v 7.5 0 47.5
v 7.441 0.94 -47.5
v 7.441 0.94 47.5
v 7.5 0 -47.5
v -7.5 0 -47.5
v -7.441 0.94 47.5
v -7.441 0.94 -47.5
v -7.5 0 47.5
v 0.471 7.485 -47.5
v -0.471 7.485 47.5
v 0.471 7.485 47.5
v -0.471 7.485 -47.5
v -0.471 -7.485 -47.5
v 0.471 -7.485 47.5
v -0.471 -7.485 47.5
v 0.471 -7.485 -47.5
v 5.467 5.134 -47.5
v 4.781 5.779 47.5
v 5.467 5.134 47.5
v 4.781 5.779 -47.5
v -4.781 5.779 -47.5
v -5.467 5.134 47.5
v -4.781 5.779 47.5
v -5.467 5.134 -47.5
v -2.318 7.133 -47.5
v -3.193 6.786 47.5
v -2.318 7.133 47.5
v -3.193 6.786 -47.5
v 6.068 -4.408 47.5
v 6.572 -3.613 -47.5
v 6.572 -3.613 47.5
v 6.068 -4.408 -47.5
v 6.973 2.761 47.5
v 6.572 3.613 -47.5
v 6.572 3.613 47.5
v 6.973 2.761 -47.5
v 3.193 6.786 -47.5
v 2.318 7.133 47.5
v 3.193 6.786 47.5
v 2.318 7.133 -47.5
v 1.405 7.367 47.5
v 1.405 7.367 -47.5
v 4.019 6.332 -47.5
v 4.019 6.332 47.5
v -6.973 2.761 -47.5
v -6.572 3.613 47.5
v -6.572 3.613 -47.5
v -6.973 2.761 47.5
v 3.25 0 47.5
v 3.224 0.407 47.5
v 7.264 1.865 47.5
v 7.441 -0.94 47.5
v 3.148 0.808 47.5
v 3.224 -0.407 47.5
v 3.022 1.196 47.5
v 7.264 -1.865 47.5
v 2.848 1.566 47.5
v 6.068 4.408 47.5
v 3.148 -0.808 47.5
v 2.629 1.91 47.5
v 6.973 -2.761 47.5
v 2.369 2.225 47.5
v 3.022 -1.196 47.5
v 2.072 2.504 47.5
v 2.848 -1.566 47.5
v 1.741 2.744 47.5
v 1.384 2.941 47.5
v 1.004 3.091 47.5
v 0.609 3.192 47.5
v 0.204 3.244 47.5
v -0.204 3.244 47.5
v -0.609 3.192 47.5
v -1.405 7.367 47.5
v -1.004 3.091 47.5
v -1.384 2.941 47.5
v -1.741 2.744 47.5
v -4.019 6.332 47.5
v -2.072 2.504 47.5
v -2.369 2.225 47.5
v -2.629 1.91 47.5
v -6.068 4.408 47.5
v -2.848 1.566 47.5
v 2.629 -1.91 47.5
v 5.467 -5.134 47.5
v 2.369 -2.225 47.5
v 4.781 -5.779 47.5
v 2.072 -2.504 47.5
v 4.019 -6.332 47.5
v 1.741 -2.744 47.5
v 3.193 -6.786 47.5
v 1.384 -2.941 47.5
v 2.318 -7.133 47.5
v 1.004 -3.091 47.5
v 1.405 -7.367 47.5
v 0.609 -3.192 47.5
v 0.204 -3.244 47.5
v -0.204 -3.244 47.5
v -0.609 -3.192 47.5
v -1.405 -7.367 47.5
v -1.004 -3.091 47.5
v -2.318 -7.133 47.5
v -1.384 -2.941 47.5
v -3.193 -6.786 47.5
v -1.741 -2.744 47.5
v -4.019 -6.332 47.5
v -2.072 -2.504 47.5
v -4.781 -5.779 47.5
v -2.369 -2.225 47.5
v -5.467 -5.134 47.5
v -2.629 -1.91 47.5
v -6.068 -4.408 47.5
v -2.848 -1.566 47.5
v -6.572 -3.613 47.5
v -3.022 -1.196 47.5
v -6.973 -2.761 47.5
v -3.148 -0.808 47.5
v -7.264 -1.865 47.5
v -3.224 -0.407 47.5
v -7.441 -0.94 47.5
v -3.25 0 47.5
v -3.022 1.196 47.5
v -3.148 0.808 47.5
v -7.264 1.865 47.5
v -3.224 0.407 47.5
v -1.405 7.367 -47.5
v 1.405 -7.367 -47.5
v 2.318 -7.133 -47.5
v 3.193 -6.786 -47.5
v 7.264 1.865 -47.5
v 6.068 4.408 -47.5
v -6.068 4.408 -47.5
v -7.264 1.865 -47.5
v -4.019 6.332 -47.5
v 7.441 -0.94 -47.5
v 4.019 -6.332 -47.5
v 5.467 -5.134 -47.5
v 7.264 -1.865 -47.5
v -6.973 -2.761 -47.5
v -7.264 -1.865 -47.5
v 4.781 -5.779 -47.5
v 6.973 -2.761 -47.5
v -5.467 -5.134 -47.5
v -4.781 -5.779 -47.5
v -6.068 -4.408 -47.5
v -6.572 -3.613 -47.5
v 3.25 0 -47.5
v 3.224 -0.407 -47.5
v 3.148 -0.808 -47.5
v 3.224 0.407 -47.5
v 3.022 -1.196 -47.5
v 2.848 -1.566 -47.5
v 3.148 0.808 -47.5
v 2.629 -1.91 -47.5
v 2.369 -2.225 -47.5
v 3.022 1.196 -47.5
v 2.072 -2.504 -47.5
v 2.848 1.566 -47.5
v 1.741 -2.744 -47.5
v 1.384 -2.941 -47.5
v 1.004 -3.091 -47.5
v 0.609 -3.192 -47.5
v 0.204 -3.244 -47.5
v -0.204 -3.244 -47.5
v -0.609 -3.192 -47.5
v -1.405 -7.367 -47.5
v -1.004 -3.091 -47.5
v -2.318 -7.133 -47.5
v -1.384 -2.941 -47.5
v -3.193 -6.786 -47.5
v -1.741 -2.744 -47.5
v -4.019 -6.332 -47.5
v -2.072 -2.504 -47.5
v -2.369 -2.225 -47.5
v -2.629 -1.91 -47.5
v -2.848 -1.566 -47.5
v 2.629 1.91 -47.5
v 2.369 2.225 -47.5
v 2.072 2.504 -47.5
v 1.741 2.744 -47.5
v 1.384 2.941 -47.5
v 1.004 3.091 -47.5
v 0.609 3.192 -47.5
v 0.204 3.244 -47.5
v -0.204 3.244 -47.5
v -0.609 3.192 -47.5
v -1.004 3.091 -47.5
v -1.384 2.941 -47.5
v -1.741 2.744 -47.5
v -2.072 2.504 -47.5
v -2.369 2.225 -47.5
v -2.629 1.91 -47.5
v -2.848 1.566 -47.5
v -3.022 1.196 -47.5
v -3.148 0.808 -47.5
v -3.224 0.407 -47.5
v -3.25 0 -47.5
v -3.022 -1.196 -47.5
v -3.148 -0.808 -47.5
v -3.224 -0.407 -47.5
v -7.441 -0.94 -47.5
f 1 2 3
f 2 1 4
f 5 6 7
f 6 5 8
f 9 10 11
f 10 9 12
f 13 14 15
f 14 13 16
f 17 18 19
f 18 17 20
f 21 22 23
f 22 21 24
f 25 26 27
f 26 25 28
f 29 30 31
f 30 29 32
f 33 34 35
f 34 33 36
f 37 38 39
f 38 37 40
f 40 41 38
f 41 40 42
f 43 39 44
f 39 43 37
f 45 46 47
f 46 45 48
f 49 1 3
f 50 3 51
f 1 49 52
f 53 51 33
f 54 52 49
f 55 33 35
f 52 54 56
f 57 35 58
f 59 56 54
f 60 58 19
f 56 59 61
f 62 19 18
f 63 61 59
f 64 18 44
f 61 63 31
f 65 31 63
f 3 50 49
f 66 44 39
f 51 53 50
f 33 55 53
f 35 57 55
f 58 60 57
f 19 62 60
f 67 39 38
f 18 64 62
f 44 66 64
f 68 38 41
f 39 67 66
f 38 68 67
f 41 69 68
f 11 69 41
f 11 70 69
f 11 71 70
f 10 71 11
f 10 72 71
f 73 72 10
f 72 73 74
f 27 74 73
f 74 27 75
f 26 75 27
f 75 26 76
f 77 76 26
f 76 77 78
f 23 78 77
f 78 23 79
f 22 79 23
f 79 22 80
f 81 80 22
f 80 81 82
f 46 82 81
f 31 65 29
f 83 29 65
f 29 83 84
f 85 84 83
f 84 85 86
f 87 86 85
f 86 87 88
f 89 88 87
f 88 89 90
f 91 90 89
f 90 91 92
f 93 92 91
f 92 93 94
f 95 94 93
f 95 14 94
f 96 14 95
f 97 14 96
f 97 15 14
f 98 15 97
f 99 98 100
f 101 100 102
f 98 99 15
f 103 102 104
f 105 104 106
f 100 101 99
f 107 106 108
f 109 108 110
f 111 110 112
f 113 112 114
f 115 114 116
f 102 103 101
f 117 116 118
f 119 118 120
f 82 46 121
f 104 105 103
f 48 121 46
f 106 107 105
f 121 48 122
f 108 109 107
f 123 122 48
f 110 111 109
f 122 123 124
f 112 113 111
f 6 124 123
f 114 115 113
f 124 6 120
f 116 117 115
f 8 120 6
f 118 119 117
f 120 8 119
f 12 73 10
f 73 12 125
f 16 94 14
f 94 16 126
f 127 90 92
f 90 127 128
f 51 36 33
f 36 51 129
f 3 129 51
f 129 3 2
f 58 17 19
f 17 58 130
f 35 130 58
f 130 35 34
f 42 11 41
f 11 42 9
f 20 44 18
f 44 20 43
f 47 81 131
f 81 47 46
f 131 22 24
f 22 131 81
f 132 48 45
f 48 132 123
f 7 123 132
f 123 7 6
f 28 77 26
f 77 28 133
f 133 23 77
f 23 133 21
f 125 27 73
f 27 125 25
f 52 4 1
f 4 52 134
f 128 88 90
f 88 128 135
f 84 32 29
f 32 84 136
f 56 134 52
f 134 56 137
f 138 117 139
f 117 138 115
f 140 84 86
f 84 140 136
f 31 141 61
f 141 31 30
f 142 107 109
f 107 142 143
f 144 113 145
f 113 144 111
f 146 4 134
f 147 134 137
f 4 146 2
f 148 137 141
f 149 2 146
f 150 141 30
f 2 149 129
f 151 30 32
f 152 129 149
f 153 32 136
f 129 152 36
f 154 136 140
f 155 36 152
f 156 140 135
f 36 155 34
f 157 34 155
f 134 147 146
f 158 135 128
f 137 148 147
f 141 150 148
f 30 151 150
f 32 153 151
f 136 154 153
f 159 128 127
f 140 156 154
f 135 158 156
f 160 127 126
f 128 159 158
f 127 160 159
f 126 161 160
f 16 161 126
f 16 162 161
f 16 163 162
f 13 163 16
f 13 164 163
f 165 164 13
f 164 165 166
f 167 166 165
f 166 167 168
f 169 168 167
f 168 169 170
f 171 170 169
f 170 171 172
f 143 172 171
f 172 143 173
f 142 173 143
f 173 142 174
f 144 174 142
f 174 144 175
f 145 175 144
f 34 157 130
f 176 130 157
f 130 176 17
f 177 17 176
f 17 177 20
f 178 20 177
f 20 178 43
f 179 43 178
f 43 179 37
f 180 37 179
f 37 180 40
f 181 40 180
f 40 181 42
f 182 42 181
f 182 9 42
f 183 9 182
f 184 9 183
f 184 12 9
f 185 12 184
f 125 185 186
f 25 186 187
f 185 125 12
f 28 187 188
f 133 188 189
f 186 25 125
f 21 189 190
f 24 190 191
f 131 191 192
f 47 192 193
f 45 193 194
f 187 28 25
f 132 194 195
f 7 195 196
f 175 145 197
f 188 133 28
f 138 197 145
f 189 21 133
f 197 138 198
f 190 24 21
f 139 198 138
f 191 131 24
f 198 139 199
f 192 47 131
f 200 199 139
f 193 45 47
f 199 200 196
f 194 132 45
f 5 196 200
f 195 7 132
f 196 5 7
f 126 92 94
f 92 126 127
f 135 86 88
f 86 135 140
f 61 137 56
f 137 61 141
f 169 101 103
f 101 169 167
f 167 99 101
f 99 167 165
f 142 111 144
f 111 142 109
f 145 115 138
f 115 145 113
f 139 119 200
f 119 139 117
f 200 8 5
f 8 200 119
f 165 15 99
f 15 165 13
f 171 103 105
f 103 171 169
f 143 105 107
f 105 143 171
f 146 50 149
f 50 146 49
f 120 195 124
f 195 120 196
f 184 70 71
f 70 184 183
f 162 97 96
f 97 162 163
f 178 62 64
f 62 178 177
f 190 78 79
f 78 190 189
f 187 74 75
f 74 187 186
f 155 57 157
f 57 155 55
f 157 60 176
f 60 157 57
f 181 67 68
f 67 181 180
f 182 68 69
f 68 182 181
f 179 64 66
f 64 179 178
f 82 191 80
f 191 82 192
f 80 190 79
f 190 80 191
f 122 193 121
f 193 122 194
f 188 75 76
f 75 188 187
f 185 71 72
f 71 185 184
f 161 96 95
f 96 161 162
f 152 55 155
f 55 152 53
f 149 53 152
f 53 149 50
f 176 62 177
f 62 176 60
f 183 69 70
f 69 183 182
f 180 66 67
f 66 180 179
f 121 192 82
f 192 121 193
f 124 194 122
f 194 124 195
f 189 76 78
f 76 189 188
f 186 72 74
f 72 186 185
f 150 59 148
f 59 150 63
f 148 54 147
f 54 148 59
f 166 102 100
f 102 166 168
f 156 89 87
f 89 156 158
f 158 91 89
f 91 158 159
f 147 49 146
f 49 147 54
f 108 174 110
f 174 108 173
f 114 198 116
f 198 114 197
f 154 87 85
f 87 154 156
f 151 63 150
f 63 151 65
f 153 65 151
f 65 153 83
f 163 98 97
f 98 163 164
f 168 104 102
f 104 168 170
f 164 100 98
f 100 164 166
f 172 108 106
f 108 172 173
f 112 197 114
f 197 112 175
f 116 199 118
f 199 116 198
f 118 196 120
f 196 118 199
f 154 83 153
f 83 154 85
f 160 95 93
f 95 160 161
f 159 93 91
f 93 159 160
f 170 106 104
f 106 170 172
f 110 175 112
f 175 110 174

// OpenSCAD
$fn = 50;


difference() {
	union() {
		translate(v = [0, 0, -47.5000000000]) {
			cylinder(h = 95, r = 7.5000000000);
		}
	}
	union() {
		translate(v = [0, 0, -100.0000000000]) {
			cylinder(h = 200, r = 3.2500000000);
		}
	}
}
